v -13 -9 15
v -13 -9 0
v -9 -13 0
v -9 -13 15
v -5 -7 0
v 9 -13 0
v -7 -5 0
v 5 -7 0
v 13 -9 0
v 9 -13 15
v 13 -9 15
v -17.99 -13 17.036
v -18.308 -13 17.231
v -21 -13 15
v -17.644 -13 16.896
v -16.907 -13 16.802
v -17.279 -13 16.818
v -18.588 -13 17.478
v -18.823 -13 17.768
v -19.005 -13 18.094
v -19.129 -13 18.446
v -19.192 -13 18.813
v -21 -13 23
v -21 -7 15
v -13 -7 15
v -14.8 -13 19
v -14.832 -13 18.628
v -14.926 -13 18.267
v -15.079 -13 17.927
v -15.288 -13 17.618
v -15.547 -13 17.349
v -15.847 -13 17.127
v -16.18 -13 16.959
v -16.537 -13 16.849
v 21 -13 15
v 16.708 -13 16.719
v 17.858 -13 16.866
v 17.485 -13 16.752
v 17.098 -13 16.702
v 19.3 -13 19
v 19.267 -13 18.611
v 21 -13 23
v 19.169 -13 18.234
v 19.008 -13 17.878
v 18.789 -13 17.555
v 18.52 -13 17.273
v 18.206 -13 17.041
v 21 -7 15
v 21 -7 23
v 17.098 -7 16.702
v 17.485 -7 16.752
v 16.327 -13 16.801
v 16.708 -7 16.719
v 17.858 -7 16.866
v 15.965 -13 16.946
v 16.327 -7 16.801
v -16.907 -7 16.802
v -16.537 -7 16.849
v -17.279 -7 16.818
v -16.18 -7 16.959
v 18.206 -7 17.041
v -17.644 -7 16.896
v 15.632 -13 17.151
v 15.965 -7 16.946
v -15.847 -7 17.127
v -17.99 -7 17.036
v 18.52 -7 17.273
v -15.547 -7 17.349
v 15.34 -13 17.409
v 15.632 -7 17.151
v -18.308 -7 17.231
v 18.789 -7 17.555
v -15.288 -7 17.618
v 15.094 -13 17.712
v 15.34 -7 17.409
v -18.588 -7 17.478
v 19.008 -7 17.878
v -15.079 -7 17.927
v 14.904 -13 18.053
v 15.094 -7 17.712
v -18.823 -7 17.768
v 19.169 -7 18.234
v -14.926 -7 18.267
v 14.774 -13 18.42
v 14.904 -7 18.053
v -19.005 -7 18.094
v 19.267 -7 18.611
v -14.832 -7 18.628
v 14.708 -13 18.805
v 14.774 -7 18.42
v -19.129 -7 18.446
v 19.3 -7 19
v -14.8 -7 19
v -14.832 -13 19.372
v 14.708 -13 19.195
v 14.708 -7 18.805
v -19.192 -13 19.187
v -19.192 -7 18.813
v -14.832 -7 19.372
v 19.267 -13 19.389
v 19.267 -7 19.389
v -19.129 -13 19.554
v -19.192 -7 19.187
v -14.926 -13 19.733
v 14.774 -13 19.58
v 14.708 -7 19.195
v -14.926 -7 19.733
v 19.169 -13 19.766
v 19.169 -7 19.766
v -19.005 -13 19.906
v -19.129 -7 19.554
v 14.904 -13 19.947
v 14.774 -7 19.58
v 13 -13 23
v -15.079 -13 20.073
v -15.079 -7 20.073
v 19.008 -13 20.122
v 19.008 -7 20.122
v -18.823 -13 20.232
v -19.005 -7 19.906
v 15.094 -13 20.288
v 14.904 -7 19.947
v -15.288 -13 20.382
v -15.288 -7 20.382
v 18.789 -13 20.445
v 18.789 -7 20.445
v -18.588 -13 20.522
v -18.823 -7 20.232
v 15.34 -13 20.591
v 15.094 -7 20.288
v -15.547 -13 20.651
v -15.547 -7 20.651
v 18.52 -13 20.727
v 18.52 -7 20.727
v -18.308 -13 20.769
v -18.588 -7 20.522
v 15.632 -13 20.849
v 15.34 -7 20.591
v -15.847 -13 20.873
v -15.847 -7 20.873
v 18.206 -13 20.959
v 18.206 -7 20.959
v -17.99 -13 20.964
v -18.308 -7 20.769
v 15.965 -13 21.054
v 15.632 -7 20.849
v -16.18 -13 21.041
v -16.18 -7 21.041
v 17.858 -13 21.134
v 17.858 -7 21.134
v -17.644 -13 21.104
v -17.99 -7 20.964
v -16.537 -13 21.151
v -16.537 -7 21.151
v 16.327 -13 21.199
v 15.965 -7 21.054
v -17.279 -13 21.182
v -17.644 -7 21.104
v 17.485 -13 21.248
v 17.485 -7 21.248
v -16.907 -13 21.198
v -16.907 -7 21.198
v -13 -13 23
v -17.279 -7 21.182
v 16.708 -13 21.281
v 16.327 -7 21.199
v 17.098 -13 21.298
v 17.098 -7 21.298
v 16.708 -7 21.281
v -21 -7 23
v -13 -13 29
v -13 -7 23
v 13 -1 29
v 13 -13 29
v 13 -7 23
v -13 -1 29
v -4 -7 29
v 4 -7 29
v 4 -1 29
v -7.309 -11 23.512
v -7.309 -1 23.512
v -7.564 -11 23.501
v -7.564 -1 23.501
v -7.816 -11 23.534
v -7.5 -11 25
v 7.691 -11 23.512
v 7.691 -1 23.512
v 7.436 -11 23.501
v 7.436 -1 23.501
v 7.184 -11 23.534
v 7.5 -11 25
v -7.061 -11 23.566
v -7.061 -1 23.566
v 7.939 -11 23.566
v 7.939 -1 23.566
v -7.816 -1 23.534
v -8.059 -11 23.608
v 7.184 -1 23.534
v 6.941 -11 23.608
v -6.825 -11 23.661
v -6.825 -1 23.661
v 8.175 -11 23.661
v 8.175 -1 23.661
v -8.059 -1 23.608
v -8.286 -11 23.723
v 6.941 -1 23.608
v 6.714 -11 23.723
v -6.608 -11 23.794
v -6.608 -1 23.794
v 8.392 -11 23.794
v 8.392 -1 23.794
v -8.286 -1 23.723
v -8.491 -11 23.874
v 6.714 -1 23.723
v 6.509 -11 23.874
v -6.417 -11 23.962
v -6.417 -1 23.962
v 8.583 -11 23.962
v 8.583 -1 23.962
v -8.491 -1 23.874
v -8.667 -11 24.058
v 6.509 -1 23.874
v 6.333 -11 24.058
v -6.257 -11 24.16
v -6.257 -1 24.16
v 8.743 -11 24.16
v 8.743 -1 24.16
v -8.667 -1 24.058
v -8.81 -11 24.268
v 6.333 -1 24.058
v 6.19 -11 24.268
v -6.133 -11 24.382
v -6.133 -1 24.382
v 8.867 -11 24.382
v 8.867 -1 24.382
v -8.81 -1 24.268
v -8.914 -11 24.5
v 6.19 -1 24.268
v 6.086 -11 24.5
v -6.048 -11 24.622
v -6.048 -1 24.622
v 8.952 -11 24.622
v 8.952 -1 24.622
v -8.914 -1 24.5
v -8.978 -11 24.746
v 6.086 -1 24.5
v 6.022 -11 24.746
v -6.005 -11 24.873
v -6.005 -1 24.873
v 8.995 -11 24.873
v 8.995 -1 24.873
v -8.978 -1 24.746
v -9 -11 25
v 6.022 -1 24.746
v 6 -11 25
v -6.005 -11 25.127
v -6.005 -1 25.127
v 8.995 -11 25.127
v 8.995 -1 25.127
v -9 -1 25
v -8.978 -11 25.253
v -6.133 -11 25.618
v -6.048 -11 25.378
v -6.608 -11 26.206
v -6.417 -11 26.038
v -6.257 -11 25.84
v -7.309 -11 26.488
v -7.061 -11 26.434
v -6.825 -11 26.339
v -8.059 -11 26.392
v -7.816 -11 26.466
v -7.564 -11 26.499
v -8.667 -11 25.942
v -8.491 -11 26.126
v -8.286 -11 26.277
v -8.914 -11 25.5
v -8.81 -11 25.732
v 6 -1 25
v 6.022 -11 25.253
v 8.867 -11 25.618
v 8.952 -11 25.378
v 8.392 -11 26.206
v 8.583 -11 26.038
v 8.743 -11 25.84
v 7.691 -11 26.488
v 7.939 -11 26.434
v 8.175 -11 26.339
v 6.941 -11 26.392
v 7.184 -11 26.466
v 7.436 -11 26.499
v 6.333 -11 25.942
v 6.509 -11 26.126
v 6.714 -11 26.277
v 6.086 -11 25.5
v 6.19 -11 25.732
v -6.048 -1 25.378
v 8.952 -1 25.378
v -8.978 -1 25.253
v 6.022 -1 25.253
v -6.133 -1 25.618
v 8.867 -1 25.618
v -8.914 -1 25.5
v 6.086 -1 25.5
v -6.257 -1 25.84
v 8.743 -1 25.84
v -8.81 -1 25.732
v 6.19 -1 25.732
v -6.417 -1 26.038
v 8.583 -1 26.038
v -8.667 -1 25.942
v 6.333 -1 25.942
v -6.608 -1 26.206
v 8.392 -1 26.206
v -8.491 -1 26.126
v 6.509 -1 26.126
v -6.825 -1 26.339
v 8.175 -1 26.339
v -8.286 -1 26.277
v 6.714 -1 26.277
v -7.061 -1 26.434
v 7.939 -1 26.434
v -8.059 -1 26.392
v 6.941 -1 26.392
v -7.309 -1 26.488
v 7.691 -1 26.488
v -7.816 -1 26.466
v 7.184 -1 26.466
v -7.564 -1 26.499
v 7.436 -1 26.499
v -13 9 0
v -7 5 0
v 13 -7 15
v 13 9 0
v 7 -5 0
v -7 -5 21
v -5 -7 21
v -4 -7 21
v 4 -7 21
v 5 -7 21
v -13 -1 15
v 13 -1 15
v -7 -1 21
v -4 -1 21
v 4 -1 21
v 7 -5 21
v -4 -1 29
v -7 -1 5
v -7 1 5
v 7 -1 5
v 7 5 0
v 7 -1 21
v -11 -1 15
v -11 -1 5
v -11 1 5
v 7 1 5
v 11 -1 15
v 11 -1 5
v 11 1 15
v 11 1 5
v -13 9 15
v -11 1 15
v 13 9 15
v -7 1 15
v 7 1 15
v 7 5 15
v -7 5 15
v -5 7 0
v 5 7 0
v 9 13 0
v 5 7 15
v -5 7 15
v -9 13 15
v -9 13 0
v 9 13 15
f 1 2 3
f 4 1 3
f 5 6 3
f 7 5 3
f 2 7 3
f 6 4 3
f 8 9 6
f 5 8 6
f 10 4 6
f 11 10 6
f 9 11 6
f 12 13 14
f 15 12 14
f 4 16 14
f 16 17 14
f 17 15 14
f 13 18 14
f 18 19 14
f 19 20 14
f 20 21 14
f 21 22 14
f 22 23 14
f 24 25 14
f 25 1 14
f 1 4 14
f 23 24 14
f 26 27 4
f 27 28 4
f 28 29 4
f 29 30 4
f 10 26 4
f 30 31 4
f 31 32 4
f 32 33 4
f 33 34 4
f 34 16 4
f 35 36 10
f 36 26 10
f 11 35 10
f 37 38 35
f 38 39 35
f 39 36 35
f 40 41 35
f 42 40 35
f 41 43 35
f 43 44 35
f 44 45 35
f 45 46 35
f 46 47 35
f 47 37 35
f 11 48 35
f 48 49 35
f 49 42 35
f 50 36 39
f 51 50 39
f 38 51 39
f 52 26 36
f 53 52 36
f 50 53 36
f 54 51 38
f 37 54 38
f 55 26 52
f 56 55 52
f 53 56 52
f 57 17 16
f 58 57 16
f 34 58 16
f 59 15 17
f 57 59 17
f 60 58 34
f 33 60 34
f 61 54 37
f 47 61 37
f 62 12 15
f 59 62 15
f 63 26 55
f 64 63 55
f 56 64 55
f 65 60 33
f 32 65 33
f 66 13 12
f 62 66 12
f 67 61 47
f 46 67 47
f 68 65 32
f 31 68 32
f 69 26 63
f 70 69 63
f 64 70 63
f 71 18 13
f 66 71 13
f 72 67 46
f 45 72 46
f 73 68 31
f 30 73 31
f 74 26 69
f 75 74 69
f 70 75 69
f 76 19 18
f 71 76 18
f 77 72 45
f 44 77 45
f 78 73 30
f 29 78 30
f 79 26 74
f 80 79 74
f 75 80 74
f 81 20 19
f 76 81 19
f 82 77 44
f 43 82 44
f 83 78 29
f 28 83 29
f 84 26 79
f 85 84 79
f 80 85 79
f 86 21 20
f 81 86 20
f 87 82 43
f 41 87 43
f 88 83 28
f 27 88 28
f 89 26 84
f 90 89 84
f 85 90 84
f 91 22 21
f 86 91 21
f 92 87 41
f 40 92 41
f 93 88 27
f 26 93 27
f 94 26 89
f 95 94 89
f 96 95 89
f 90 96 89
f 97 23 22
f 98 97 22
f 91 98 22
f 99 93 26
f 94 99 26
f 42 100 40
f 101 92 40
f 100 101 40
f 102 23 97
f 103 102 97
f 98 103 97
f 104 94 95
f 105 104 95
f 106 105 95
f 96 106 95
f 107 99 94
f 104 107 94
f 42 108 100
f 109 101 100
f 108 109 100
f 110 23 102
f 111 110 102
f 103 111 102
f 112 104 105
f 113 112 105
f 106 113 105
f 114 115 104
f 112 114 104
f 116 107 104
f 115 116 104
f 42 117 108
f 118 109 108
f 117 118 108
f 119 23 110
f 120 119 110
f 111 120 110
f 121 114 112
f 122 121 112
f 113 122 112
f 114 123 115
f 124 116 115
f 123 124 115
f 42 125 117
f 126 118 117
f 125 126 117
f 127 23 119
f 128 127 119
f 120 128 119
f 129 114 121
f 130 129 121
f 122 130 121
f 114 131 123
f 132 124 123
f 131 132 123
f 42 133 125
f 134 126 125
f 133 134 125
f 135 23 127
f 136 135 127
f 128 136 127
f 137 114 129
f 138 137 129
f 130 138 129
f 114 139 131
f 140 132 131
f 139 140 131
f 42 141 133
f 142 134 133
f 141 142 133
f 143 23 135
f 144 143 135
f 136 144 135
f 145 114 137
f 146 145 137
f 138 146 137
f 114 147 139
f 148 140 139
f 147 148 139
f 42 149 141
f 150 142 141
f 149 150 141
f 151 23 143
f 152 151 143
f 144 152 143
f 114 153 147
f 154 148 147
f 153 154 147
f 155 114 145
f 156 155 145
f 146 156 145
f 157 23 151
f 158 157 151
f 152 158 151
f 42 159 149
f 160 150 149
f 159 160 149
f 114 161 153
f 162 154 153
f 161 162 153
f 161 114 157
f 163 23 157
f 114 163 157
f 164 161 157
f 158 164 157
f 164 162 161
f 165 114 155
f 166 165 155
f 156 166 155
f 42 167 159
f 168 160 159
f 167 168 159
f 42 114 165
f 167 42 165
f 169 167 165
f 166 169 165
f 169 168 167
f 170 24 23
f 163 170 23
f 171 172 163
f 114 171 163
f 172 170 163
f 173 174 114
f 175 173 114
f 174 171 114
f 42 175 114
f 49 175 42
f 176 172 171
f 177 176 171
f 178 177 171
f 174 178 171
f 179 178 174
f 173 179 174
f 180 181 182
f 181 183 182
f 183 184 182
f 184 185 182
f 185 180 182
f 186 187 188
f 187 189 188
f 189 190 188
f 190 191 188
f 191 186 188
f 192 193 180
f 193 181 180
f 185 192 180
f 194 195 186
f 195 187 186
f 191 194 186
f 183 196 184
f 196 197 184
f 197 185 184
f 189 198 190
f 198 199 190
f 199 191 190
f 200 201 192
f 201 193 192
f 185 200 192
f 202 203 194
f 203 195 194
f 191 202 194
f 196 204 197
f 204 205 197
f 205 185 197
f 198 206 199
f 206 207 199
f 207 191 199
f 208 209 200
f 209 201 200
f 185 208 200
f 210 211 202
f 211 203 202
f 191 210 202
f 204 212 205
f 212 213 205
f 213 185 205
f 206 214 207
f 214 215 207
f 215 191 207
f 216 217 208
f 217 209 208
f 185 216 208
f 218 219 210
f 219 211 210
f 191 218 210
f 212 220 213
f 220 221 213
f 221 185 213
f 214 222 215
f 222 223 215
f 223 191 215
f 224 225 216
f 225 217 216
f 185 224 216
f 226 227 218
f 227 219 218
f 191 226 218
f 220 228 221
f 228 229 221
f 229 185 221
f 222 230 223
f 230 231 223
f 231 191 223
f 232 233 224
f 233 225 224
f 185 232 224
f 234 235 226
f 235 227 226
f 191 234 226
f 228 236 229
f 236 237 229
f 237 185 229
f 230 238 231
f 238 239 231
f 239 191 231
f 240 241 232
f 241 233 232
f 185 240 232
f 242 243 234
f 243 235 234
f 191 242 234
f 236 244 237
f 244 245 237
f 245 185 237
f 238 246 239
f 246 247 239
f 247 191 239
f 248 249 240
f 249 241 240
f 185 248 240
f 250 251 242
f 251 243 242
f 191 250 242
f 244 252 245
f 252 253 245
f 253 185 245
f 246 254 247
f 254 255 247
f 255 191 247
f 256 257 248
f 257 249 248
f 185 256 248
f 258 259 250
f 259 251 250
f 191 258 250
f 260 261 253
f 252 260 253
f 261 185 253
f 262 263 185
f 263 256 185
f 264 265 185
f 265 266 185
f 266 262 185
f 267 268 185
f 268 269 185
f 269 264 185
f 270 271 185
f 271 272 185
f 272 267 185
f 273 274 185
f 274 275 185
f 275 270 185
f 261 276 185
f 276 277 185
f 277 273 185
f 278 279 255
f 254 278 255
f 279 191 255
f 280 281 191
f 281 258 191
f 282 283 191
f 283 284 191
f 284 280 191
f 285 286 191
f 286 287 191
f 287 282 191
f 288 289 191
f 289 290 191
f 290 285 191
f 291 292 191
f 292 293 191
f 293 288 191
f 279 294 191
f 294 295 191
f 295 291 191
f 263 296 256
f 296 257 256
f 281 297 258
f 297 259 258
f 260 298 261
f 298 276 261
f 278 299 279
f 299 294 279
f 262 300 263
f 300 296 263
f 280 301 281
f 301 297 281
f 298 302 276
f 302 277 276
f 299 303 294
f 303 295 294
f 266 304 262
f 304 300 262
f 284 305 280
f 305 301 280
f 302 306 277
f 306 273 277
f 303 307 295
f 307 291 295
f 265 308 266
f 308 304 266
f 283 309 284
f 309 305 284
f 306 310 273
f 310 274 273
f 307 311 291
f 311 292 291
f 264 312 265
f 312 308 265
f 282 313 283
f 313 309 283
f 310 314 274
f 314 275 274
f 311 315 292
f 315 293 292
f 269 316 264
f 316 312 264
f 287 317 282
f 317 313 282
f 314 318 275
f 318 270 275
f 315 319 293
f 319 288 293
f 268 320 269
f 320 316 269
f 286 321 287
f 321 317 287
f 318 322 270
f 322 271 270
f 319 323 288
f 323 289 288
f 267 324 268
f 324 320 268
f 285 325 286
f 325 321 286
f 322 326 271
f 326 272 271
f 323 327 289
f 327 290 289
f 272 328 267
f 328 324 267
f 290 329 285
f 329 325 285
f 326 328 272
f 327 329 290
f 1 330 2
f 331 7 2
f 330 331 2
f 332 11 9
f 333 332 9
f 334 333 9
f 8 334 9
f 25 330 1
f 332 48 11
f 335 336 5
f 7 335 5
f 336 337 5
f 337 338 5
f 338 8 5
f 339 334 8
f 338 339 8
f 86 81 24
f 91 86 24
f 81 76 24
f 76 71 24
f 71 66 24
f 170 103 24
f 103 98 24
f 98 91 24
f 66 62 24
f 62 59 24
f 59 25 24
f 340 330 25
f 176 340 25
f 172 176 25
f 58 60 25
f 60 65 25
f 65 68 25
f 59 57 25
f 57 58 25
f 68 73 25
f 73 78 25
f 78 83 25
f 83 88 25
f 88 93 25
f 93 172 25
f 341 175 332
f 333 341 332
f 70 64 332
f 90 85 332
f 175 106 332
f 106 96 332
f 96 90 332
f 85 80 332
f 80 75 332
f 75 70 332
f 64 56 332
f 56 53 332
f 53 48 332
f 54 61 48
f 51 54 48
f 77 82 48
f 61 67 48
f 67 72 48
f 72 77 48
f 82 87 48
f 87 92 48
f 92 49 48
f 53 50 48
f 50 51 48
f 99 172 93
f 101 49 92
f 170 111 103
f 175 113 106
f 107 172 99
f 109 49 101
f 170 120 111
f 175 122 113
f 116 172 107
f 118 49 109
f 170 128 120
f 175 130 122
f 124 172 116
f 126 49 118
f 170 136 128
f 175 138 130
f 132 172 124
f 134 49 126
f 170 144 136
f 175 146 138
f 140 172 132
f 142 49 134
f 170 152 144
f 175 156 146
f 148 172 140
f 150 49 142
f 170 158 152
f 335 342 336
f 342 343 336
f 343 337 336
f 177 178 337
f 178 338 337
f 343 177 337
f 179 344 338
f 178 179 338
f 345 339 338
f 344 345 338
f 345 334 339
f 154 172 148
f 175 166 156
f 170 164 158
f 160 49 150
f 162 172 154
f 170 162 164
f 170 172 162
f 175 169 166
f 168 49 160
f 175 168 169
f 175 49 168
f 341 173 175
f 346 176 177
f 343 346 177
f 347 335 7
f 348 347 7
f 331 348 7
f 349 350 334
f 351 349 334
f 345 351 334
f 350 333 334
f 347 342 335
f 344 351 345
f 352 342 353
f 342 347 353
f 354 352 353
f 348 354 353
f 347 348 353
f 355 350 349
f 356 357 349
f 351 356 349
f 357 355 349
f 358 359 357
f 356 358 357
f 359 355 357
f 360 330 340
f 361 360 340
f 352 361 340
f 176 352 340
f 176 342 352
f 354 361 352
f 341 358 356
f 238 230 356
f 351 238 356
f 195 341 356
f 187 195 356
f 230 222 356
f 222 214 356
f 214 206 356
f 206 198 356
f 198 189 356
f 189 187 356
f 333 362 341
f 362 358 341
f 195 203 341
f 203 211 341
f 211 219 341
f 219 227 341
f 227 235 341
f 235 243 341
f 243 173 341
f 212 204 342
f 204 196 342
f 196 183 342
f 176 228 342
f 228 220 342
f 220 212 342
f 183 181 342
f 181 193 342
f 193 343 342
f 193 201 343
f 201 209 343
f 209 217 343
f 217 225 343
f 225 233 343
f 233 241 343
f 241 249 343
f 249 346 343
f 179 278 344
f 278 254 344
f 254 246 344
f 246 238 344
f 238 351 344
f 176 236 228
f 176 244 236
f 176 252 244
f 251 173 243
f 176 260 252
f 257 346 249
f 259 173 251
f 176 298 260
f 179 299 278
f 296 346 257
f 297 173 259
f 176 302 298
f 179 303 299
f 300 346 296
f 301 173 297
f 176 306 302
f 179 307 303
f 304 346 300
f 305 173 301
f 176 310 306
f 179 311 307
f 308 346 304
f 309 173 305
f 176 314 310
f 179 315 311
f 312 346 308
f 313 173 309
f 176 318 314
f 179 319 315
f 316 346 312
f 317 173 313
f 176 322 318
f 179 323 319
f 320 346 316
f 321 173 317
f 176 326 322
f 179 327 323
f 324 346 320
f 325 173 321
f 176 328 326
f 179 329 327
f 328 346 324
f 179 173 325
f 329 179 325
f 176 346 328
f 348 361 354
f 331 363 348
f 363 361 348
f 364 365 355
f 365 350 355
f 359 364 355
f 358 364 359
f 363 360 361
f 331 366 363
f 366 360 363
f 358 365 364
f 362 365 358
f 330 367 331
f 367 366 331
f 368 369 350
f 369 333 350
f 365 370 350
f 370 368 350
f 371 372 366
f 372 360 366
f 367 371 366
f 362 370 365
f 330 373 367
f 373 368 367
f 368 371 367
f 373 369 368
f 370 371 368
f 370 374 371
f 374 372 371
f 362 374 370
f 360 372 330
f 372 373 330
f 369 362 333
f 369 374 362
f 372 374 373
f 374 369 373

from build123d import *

# Parameters (mm, degrees)
BOSS_EXTRU_1_DEPTH      = 15
BOSS_EXTRU_2_DEPTH      = 14
ESQUISSE3_W             = 4
ESQUISSE3_H             = 2
ENL_V_MAT_EXTRU_1_DEPTH = 10
BOSS_EXTRU_3_DEPTH      = 8
ESQUISSE6_R             = 1.5
ENL_V_MAT_EXTRU_2_DEPTH = 10
BOSS_EXTRU_4_DEPTH      = 14
ESQUISSE9_W             = 8
ESQUISSE9_H             = 8
ESQUISSE9_R             = 2.2
ESQUISSE9_R_2           = 2.3
BOSS_EXTRU_5_DEPTH      = 6


with BuildPart() as part:
    # Esquisse1 → Boss.-Extru.1 (new body)
    with BuildSketch(Plane.XY):
        Polygon((13, 0), (13, -9), (9, -13), (-9, -13), (-13, -9), (-13, 0), (-13, 9), (-9, 13), (0, 13), (9, 13), (13, 9), align=None)
        Polygon((7, 0), (7, -5), (5, -7), (-5, -7), (-7, -5), (-7, 0), (-7, 5), (-5, 7), (5, 7), (7, 5), align=None, mode=Mode.SUBTRACT)
    extrude(amount=BOSS_EXTRU_1_DEPTH)

    # Esquisse2 → Boss.-Extru.2 (add)
    with BuildSketch(Plane.XY.offset(15)):
        Polygon((-9, -13), (9, -13), (13, -9), (13, -1), (7, -1), (7, -5), (5, -7), (-5, -7), (-7, -5), (-7, -1), (-13, -1), (-13, -9), align=None)
    extrude(amount=BOSS_EXTRU_2_DEPTH)

    # Esquisse3 → Enlèv. mat.-Extru.1 (cut)
    with BuildSketch(Plane.XY.offset(15)):
        with Locations((-9, 0)):
            Rectangle(ESQUISSE3_W, ESQUISSE3_H)
        with Locations((9, 0)):
            Rectangle(ESQUISSE3_W, ESQUISSE3_H)
    extrude(amount=-ENL_V_MAT_EXTRU_1_DEPTH, mode=Mode.SUBTRACT)

    # Esquisse5 → Boss.-Extru.3 (add)
    with BuildSketch(Plane.XY.offset(29)):
        Polygon((-4, -1), (-7, -1), (-7, -5), (-5, -7), (-4, -7), align=None)
        Polygon((5, -7), (7, -5), (7, -1), (4, -1), (4, -7), align=None)
    extrude(amount=-BOSS_EXTRU_3_DEPTH)

    # Esquisse6 → Enlèv. mat.-Extru.2 (cut)
    with BuildSketch(Plane(origin=(0, -1, 0), x_dir=(1, 0, 0), z_dir=(0, 1, 0))):
        with Locations(Location((-7.5, -25, 0), (0, 0, 180))):
            Circle(ESQUISSE6_R)
        with Locations(Location((7.5, -25, 0), (0, 0, 180))):
            Circle(ESQUISSE6_R)
    extrude(amount=-ENL_V_MAT_EXTRU_2_DEPTH, mode=Mode.SUBTRACT)

    # Esquisse8 → Boss.-Extru.4 (add)
    with BuildSketch(Plane.XY.offset(29)):
        Polygon((-13, -9), (-9, -13), (-13, -13), align=None)
        Polygon((9, -13), (13, -13), (13, -9), align=None)
    extrude(amount=-BOSS_EXTRU_4_DEPTH)

    # Esquisse9 → Boss.-Extru.5 (add)
    # profile 1 of 2: a face of its own
    with BuildSketch(Plane.XZ.offset(13)):
        with Locations((-17, 19)):
            Rectangle(ESQUISSE9_W, ESQUISSE9_H)
        with Locations((-17, 19)):
            Circle(ESQUISSE9_R, mode=Mode.SUBTRACT)
    # profile 2 of 2: a face of its own
    with BuildSketch(Plane.XZ.offset(13)):
        with Locations((17, 19)):
            Rectangle(ESQUISSE9_W, ESQUISSE9_H)
        with Locations((17, 19)):
            Circle(ESQUISSE9_R_2, mode=Mode.SUBTRACT)
    extrude(amount=-BOSS_EXTRU_5_DEPTH)


solid = part.part
